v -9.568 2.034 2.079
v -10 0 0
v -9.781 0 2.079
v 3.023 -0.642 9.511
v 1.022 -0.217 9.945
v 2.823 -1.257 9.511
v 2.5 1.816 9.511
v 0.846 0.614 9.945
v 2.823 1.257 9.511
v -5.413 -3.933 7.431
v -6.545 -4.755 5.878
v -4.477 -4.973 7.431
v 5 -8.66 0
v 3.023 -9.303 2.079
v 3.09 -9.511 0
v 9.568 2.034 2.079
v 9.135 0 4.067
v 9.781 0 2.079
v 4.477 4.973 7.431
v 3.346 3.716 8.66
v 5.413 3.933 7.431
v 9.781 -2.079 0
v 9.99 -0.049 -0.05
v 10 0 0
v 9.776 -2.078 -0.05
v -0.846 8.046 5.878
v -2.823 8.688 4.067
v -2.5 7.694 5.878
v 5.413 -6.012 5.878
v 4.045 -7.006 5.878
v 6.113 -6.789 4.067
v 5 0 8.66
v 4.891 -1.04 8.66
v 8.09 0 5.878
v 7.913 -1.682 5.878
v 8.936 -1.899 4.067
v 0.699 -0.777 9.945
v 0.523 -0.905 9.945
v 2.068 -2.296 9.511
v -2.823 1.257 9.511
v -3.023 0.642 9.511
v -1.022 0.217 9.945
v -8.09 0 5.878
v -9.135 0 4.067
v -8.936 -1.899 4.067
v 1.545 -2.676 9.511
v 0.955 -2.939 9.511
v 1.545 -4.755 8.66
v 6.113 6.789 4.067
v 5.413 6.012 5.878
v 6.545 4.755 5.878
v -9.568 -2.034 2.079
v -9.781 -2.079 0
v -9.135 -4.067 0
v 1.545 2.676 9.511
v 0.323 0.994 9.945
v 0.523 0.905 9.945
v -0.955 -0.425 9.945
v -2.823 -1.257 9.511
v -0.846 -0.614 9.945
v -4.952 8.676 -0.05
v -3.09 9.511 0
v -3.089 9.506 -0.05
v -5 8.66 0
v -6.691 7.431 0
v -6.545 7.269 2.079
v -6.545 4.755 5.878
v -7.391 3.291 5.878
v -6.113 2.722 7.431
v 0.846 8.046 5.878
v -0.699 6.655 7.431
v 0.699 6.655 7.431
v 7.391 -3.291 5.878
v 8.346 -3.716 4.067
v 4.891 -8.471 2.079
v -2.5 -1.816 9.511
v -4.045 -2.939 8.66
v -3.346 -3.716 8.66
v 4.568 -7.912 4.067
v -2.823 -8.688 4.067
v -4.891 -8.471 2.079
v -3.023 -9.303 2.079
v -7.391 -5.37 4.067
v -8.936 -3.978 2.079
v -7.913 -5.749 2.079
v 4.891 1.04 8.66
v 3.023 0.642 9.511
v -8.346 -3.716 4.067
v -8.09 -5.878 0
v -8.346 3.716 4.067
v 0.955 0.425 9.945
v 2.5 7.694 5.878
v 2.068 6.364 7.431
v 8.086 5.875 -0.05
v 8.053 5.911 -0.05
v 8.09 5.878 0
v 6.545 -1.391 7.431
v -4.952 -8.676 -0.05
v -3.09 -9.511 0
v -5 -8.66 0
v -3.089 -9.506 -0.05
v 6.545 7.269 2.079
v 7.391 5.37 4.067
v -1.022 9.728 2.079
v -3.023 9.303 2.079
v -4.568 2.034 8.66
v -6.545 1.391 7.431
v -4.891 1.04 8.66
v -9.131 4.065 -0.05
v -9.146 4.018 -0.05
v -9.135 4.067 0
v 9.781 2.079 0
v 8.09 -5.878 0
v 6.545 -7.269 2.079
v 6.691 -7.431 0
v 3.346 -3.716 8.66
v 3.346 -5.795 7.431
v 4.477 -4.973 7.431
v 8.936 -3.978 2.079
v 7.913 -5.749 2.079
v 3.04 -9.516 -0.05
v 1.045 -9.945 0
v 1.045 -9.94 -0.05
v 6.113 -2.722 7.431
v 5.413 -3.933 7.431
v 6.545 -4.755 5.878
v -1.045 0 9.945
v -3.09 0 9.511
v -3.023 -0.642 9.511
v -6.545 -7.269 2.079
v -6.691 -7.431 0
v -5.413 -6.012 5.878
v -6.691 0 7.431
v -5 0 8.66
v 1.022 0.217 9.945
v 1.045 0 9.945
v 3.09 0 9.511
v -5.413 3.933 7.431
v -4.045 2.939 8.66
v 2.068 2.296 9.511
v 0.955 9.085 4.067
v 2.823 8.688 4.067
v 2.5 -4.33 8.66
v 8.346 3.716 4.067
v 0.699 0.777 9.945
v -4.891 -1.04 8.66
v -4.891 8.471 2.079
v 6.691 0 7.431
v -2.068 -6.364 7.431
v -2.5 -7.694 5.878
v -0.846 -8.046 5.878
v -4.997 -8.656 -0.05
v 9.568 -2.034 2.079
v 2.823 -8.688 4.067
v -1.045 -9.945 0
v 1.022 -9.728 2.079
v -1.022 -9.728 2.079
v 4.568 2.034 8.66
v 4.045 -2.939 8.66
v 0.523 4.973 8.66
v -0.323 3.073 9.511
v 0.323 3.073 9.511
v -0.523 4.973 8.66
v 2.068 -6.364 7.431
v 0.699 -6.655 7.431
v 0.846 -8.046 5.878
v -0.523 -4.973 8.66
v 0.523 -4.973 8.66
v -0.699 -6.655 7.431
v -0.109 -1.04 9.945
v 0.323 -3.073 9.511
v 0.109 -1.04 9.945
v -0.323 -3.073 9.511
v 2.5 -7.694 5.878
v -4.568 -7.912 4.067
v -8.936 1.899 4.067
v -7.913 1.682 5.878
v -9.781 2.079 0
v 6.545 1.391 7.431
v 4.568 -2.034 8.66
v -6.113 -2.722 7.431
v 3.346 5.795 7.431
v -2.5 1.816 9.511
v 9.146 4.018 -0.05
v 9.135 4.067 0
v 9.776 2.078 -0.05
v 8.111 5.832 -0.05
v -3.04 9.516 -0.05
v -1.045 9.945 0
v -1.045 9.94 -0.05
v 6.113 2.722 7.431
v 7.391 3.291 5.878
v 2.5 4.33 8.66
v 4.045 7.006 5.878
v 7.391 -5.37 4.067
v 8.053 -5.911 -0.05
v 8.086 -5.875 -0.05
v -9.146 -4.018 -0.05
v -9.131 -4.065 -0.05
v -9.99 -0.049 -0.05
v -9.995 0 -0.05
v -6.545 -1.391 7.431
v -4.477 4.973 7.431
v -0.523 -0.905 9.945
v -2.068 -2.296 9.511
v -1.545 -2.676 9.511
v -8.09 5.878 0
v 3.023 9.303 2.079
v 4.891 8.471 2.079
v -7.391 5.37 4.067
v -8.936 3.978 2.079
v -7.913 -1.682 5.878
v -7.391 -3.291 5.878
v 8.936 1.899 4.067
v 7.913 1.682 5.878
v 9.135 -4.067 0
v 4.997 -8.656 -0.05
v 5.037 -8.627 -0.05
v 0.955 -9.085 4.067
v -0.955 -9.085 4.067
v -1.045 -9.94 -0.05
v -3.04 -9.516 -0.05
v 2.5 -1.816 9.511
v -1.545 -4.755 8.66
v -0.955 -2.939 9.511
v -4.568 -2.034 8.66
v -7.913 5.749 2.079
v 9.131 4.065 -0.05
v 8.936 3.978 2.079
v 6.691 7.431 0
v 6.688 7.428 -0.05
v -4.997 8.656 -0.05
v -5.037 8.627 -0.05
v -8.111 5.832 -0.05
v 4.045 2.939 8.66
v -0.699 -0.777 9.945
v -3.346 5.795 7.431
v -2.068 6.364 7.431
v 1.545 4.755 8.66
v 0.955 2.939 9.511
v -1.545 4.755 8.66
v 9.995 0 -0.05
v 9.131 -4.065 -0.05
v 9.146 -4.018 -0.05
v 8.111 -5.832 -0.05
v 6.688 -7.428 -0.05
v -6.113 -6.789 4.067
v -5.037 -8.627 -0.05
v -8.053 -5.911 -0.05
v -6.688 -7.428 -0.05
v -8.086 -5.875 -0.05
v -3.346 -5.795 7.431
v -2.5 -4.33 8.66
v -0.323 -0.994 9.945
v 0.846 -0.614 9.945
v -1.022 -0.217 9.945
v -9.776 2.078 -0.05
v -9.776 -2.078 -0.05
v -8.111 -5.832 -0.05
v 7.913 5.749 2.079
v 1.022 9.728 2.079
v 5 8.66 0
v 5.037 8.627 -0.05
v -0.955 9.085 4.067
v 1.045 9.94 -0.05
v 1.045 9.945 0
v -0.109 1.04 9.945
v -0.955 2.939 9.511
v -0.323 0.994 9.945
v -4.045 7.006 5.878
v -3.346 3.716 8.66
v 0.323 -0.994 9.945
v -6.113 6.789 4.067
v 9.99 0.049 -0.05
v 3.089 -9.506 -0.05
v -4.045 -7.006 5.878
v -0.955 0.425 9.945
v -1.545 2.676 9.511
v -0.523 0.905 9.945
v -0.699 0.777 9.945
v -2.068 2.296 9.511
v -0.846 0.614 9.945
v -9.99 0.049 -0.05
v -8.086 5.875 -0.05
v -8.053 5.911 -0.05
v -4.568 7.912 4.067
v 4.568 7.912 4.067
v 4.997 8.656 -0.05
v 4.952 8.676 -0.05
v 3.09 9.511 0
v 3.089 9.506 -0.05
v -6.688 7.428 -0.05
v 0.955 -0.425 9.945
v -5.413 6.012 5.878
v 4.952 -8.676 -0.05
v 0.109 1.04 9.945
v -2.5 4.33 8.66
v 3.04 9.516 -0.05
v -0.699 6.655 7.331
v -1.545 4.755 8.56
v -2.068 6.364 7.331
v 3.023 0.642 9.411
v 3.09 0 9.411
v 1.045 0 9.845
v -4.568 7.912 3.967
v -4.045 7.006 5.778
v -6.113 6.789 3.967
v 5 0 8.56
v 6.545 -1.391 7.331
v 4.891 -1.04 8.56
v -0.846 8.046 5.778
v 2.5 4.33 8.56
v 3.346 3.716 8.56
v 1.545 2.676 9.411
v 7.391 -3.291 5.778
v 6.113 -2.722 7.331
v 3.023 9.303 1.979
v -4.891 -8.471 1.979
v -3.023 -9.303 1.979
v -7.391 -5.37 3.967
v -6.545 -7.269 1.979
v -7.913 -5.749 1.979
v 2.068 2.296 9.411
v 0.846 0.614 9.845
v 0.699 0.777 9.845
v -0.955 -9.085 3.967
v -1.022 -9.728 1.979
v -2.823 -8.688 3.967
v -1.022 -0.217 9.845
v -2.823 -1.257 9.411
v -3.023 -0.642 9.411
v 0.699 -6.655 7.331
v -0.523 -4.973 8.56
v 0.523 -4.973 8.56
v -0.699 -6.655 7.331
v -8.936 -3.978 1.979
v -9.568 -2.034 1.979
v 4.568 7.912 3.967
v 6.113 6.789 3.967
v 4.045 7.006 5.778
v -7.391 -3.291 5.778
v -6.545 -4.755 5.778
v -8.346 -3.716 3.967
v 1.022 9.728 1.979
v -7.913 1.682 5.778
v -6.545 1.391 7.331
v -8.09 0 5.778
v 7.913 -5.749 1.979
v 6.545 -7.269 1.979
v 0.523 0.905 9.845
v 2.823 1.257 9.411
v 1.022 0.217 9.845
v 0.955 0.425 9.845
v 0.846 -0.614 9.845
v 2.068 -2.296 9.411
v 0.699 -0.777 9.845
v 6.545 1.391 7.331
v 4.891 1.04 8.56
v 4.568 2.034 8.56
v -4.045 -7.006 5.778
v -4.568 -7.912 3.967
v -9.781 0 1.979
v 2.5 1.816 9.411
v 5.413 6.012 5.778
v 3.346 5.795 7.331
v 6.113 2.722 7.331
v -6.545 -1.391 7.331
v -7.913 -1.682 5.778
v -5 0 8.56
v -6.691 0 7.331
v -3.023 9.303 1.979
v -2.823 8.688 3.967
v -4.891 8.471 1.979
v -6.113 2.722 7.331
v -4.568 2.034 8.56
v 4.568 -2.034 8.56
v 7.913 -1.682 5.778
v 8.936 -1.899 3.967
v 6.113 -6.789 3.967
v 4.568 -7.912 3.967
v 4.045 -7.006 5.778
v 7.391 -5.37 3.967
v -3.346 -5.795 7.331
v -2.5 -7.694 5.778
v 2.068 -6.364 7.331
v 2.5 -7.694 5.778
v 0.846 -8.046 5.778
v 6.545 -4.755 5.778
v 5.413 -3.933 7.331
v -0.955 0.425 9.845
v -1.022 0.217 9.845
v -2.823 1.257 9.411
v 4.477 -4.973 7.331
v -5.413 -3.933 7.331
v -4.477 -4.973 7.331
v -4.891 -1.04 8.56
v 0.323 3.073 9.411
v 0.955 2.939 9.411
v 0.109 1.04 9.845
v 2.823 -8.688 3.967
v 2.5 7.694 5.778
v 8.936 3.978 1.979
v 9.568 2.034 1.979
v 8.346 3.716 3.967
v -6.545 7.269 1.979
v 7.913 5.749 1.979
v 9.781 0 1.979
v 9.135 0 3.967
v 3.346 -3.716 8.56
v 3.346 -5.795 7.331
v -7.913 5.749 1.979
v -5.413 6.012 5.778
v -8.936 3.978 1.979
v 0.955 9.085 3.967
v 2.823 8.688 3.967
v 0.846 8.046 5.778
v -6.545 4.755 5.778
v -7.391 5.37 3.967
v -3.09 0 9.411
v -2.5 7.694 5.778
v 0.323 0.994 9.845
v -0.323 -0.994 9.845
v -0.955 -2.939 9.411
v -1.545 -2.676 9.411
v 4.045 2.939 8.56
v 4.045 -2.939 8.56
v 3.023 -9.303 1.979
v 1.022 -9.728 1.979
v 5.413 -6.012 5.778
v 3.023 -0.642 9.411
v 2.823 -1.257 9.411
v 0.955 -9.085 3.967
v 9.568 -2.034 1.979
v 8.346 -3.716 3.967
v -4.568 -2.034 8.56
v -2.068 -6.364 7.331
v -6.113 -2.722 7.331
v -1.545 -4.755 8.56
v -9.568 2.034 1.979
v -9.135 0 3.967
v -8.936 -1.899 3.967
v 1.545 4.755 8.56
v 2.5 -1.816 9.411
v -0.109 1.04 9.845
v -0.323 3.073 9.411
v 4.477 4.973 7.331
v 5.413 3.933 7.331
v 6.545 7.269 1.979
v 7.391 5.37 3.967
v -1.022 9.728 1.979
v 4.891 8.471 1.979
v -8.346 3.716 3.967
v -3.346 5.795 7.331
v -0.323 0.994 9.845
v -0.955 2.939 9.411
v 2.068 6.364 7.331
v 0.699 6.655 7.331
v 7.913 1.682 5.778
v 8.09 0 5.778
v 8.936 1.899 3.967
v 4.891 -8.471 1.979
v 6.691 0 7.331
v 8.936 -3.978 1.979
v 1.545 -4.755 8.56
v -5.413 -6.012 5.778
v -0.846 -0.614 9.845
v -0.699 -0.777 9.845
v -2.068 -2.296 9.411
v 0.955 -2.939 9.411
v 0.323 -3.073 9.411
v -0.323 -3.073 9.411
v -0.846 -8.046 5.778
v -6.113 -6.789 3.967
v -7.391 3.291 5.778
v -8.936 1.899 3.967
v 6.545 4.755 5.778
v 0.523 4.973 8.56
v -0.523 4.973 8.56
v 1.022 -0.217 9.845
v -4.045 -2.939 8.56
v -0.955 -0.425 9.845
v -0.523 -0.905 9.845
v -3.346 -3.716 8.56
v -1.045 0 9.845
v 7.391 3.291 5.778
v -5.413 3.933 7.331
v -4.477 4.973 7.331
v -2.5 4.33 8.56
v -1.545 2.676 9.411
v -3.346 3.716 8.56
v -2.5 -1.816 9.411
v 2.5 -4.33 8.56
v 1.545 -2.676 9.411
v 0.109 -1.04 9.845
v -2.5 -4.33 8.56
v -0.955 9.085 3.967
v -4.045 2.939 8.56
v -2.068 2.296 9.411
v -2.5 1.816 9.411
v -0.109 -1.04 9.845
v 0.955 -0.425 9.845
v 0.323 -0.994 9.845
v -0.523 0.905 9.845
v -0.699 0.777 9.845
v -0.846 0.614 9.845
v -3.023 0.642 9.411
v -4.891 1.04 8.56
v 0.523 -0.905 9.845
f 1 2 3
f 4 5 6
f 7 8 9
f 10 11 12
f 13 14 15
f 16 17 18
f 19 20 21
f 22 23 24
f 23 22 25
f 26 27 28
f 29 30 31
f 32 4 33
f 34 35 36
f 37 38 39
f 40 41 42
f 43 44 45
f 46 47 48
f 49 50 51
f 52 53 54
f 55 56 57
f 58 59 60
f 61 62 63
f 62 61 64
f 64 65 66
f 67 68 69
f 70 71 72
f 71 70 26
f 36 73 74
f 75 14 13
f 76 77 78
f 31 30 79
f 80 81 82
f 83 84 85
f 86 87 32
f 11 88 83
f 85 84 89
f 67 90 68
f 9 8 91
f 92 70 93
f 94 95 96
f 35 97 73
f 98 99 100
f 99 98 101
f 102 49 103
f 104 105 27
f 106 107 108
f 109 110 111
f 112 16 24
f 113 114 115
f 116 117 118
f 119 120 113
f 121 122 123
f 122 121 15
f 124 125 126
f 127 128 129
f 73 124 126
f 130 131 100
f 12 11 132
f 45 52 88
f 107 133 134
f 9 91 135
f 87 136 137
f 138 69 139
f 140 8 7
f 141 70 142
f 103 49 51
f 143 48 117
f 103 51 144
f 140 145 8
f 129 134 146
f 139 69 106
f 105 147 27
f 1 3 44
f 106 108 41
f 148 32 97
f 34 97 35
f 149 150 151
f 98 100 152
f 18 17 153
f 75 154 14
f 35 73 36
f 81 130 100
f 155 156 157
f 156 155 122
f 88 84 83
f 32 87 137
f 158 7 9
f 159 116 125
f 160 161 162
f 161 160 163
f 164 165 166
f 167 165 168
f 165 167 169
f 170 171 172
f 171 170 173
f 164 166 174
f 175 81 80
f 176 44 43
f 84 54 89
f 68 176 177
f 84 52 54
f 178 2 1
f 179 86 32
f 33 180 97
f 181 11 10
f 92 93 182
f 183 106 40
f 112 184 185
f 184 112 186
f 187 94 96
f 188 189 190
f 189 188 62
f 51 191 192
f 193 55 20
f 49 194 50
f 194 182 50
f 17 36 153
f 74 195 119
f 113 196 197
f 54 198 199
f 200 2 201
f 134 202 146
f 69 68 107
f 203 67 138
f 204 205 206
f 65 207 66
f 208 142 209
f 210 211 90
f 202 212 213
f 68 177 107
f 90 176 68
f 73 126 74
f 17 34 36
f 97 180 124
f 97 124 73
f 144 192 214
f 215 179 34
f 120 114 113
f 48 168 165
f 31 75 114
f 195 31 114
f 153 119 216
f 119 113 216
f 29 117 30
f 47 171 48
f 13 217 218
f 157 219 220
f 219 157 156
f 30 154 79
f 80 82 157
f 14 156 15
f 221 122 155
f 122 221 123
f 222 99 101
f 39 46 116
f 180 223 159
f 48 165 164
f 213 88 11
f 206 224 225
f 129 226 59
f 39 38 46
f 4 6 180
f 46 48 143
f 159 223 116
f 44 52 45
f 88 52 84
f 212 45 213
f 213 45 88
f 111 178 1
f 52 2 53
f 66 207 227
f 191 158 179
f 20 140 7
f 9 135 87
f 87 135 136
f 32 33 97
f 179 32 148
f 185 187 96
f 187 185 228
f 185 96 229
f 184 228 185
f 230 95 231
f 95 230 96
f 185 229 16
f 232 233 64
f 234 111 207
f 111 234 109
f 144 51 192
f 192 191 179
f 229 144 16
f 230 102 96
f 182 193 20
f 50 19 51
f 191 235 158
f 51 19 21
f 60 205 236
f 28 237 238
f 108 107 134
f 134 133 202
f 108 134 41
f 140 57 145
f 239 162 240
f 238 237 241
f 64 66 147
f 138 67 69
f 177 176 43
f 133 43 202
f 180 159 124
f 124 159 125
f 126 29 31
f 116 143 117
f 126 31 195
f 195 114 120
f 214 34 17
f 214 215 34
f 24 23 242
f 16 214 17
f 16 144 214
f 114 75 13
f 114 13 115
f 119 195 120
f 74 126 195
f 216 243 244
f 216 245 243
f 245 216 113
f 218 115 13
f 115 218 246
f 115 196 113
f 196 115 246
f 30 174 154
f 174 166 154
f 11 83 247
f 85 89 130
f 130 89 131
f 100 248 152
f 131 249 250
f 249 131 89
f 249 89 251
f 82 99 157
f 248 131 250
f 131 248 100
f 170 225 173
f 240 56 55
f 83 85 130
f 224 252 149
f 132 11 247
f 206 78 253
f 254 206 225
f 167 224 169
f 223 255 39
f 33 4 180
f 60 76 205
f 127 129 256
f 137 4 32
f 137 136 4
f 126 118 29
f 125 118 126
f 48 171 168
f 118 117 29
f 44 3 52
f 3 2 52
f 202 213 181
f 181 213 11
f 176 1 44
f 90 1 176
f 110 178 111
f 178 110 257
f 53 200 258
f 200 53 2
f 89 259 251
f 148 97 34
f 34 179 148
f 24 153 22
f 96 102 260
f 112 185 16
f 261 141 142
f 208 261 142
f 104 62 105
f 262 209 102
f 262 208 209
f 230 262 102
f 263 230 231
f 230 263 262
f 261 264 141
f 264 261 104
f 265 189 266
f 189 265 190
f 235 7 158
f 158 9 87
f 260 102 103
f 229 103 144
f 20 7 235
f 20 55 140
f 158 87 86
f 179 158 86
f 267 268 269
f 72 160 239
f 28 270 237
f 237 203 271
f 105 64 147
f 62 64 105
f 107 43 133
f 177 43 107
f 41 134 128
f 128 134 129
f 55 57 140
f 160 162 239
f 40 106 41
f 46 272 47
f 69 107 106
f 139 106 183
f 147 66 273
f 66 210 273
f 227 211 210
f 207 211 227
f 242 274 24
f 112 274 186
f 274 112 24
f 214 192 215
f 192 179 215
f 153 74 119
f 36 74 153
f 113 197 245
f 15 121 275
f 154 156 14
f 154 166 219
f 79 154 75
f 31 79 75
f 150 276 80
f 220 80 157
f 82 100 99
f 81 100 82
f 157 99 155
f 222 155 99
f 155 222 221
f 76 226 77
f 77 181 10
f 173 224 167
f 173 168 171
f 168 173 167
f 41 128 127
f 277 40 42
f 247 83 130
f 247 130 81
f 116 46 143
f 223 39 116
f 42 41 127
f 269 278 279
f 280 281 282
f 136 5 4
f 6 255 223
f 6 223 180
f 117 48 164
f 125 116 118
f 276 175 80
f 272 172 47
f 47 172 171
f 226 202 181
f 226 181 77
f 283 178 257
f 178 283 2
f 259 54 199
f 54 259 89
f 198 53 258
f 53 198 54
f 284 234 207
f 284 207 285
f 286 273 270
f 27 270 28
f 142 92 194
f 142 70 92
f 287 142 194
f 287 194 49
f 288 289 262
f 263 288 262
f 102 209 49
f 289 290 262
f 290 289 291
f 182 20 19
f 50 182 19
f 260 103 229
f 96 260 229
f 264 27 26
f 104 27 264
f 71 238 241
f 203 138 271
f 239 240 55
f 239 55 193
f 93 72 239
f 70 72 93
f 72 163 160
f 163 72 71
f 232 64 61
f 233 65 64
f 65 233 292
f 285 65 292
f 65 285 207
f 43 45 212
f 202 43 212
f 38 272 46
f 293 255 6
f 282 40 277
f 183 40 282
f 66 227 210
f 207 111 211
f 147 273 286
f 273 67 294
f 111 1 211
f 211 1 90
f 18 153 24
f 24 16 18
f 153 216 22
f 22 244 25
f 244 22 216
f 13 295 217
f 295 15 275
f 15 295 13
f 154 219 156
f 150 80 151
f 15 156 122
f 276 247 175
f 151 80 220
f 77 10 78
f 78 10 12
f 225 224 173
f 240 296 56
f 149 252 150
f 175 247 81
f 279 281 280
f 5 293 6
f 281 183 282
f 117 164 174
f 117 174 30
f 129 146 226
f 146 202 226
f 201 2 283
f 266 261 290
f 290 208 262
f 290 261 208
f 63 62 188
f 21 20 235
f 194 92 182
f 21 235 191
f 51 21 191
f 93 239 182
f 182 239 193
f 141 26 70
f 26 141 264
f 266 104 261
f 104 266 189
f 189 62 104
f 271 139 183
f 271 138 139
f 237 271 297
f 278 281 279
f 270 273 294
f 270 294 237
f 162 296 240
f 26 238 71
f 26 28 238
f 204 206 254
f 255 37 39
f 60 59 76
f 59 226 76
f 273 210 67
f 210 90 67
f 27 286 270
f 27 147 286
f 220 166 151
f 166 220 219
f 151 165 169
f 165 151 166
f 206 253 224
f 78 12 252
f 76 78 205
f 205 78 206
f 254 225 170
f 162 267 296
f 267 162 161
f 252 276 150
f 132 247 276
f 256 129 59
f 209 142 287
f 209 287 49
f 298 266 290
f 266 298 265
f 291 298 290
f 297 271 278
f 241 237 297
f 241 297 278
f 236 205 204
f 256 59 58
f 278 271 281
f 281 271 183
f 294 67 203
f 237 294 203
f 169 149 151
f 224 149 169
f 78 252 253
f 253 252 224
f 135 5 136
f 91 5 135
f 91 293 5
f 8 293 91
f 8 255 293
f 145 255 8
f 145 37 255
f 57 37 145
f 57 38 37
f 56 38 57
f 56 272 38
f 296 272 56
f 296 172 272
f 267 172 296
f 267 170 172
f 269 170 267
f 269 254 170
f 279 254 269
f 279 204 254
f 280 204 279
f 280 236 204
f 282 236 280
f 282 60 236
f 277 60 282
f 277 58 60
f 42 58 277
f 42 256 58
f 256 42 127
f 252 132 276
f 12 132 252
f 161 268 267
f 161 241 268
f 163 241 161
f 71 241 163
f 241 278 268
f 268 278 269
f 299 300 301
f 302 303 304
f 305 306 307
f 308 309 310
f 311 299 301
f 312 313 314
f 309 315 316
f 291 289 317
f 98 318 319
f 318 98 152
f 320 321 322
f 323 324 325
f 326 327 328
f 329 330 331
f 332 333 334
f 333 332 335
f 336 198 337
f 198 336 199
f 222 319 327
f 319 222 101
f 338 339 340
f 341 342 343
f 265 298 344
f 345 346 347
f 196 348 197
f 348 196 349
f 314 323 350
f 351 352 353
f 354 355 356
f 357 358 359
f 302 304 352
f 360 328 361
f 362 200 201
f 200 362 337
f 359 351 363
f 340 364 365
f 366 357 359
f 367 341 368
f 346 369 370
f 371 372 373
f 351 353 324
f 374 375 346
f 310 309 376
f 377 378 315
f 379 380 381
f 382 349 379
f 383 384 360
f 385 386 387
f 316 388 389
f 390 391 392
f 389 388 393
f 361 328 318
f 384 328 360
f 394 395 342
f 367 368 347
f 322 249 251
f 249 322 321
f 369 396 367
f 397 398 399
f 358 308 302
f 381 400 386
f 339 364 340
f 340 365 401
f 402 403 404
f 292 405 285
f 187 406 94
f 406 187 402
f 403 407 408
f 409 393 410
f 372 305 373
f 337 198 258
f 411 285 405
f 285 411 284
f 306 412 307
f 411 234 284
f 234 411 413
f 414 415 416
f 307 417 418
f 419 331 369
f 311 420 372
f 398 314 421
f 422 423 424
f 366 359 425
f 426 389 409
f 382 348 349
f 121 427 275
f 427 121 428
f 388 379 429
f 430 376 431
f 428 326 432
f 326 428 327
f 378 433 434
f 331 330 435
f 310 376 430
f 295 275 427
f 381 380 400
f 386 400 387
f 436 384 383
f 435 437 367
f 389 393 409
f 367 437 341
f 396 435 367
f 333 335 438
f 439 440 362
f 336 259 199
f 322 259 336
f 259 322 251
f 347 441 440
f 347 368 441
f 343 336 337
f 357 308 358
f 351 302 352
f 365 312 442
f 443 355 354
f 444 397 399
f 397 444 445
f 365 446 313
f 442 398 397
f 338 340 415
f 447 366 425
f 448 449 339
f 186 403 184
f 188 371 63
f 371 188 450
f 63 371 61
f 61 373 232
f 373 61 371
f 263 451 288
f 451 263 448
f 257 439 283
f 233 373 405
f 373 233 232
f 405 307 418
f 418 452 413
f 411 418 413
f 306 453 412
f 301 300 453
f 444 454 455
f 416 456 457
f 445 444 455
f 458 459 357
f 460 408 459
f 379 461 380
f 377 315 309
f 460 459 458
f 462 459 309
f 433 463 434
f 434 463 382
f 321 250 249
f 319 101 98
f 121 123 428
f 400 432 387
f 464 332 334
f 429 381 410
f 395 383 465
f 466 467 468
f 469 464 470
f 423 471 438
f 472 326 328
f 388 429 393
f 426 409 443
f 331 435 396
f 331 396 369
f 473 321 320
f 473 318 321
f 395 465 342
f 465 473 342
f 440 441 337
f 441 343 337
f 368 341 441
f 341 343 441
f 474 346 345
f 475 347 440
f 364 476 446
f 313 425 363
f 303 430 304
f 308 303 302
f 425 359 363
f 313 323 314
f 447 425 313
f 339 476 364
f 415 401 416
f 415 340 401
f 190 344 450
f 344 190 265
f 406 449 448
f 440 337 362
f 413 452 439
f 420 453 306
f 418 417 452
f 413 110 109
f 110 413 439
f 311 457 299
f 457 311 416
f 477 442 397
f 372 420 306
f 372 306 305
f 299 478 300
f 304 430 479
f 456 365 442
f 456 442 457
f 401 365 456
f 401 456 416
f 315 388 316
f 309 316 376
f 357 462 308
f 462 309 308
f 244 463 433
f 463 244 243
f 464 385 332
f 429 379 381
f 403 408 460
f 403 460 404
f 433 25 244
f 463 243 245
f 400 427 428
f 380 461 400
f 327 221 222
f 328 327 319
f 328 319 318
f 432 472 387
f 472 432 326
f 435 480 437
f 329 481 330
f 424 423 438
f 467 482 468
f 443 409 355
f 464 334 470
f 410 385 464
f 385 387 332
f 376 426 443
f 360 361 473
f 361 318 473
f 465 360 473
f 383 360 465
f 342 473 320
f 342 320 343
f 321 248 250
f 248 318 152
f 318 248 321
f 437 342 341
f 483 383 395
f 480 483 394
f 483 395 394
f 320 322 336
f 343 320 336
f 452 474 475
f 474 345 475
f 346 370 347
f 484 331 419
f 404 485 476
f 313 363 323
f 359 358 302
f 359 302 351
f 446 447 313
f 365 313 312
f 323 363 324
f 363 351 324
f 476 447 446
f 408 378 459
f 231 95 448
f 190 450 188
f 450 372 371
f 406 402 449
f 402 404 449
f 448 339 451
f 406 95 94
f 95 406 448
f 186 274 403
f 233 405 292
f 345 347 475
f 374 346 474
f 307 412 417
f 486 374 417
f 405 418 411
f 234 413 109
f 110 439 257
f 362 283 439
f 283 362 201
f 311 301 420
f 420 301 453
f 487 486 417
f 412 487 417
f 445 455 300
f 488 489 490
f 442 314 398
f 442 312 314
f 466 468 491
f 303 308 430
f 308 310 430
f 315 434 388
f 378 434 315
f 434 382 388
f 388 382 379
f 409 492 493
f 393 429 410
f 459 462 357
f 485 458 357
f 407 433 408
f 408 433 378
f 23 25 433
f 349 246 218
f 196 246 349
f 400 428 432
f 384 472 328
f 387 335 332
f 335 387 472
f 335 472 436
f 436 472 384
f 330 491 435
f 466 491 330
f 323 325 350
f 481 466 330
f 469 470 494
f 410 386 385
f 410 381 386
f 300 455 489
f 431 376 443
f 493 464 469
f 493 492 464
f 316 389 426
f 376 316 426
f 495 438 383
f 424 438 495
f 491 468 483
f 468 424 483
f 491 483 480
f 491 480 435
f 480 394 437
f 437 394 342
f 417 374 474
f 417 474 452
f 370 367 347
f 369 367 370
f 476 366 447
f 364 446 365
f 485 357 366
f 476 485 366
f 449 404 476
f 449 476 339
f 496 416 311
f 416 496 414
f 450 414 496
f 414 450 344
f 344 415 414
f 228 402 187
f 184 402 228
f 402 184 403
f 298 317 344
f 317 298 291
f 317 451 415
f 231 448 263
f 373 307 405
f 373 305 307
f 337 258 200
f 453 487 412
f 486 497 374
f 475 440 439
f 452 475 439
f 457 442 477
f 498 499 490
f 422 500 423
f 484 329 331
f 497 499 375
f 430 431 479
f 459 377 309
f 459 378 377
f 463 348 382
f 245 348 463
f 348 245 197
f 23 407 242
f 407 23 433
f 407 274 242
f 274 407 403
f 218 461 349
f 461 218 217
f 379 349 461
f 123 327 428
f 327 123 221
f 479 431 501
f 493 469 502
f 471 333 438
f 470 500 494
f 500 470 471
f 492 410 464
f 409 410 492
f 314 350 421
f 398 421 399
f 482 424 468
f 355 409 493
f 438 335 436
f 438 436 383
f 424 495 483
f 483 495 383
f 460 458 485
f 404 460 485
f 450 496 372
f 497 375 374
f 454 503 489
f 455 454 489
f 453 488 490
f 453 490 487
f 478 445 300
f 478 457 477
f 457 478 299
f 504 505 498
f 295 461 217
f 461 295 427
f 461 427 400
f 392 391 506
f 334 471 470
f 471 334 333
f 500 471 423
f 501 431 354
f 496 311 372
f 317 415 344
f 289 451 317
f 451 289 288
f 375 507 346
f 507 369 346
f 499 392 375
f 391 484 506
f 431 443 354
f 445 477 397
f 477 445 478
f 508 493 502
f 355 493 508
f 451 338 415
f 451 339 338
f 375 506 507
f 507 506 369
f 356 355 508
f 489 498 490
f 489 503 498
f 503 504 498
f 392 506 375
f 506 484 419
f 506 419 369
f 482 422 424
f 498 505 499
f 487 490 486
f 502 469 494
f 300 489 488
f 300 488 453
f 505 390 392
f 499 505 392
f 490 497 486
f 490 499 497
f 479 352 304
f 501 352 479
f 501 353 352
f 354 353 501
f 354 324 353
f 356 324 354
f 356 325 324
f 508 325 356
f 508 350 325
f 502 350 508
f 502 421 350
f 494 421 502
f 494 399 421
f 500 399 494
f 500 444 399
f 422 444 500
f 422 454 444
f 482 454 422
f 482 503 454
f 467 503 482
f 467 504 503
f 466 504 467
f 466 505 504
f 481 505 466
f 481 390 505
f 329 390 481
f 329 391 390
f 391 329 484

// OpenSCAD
difference() {
  sphere(r = 10);
  translate([0,0,-0.1]) sphere(r = 10);
}
